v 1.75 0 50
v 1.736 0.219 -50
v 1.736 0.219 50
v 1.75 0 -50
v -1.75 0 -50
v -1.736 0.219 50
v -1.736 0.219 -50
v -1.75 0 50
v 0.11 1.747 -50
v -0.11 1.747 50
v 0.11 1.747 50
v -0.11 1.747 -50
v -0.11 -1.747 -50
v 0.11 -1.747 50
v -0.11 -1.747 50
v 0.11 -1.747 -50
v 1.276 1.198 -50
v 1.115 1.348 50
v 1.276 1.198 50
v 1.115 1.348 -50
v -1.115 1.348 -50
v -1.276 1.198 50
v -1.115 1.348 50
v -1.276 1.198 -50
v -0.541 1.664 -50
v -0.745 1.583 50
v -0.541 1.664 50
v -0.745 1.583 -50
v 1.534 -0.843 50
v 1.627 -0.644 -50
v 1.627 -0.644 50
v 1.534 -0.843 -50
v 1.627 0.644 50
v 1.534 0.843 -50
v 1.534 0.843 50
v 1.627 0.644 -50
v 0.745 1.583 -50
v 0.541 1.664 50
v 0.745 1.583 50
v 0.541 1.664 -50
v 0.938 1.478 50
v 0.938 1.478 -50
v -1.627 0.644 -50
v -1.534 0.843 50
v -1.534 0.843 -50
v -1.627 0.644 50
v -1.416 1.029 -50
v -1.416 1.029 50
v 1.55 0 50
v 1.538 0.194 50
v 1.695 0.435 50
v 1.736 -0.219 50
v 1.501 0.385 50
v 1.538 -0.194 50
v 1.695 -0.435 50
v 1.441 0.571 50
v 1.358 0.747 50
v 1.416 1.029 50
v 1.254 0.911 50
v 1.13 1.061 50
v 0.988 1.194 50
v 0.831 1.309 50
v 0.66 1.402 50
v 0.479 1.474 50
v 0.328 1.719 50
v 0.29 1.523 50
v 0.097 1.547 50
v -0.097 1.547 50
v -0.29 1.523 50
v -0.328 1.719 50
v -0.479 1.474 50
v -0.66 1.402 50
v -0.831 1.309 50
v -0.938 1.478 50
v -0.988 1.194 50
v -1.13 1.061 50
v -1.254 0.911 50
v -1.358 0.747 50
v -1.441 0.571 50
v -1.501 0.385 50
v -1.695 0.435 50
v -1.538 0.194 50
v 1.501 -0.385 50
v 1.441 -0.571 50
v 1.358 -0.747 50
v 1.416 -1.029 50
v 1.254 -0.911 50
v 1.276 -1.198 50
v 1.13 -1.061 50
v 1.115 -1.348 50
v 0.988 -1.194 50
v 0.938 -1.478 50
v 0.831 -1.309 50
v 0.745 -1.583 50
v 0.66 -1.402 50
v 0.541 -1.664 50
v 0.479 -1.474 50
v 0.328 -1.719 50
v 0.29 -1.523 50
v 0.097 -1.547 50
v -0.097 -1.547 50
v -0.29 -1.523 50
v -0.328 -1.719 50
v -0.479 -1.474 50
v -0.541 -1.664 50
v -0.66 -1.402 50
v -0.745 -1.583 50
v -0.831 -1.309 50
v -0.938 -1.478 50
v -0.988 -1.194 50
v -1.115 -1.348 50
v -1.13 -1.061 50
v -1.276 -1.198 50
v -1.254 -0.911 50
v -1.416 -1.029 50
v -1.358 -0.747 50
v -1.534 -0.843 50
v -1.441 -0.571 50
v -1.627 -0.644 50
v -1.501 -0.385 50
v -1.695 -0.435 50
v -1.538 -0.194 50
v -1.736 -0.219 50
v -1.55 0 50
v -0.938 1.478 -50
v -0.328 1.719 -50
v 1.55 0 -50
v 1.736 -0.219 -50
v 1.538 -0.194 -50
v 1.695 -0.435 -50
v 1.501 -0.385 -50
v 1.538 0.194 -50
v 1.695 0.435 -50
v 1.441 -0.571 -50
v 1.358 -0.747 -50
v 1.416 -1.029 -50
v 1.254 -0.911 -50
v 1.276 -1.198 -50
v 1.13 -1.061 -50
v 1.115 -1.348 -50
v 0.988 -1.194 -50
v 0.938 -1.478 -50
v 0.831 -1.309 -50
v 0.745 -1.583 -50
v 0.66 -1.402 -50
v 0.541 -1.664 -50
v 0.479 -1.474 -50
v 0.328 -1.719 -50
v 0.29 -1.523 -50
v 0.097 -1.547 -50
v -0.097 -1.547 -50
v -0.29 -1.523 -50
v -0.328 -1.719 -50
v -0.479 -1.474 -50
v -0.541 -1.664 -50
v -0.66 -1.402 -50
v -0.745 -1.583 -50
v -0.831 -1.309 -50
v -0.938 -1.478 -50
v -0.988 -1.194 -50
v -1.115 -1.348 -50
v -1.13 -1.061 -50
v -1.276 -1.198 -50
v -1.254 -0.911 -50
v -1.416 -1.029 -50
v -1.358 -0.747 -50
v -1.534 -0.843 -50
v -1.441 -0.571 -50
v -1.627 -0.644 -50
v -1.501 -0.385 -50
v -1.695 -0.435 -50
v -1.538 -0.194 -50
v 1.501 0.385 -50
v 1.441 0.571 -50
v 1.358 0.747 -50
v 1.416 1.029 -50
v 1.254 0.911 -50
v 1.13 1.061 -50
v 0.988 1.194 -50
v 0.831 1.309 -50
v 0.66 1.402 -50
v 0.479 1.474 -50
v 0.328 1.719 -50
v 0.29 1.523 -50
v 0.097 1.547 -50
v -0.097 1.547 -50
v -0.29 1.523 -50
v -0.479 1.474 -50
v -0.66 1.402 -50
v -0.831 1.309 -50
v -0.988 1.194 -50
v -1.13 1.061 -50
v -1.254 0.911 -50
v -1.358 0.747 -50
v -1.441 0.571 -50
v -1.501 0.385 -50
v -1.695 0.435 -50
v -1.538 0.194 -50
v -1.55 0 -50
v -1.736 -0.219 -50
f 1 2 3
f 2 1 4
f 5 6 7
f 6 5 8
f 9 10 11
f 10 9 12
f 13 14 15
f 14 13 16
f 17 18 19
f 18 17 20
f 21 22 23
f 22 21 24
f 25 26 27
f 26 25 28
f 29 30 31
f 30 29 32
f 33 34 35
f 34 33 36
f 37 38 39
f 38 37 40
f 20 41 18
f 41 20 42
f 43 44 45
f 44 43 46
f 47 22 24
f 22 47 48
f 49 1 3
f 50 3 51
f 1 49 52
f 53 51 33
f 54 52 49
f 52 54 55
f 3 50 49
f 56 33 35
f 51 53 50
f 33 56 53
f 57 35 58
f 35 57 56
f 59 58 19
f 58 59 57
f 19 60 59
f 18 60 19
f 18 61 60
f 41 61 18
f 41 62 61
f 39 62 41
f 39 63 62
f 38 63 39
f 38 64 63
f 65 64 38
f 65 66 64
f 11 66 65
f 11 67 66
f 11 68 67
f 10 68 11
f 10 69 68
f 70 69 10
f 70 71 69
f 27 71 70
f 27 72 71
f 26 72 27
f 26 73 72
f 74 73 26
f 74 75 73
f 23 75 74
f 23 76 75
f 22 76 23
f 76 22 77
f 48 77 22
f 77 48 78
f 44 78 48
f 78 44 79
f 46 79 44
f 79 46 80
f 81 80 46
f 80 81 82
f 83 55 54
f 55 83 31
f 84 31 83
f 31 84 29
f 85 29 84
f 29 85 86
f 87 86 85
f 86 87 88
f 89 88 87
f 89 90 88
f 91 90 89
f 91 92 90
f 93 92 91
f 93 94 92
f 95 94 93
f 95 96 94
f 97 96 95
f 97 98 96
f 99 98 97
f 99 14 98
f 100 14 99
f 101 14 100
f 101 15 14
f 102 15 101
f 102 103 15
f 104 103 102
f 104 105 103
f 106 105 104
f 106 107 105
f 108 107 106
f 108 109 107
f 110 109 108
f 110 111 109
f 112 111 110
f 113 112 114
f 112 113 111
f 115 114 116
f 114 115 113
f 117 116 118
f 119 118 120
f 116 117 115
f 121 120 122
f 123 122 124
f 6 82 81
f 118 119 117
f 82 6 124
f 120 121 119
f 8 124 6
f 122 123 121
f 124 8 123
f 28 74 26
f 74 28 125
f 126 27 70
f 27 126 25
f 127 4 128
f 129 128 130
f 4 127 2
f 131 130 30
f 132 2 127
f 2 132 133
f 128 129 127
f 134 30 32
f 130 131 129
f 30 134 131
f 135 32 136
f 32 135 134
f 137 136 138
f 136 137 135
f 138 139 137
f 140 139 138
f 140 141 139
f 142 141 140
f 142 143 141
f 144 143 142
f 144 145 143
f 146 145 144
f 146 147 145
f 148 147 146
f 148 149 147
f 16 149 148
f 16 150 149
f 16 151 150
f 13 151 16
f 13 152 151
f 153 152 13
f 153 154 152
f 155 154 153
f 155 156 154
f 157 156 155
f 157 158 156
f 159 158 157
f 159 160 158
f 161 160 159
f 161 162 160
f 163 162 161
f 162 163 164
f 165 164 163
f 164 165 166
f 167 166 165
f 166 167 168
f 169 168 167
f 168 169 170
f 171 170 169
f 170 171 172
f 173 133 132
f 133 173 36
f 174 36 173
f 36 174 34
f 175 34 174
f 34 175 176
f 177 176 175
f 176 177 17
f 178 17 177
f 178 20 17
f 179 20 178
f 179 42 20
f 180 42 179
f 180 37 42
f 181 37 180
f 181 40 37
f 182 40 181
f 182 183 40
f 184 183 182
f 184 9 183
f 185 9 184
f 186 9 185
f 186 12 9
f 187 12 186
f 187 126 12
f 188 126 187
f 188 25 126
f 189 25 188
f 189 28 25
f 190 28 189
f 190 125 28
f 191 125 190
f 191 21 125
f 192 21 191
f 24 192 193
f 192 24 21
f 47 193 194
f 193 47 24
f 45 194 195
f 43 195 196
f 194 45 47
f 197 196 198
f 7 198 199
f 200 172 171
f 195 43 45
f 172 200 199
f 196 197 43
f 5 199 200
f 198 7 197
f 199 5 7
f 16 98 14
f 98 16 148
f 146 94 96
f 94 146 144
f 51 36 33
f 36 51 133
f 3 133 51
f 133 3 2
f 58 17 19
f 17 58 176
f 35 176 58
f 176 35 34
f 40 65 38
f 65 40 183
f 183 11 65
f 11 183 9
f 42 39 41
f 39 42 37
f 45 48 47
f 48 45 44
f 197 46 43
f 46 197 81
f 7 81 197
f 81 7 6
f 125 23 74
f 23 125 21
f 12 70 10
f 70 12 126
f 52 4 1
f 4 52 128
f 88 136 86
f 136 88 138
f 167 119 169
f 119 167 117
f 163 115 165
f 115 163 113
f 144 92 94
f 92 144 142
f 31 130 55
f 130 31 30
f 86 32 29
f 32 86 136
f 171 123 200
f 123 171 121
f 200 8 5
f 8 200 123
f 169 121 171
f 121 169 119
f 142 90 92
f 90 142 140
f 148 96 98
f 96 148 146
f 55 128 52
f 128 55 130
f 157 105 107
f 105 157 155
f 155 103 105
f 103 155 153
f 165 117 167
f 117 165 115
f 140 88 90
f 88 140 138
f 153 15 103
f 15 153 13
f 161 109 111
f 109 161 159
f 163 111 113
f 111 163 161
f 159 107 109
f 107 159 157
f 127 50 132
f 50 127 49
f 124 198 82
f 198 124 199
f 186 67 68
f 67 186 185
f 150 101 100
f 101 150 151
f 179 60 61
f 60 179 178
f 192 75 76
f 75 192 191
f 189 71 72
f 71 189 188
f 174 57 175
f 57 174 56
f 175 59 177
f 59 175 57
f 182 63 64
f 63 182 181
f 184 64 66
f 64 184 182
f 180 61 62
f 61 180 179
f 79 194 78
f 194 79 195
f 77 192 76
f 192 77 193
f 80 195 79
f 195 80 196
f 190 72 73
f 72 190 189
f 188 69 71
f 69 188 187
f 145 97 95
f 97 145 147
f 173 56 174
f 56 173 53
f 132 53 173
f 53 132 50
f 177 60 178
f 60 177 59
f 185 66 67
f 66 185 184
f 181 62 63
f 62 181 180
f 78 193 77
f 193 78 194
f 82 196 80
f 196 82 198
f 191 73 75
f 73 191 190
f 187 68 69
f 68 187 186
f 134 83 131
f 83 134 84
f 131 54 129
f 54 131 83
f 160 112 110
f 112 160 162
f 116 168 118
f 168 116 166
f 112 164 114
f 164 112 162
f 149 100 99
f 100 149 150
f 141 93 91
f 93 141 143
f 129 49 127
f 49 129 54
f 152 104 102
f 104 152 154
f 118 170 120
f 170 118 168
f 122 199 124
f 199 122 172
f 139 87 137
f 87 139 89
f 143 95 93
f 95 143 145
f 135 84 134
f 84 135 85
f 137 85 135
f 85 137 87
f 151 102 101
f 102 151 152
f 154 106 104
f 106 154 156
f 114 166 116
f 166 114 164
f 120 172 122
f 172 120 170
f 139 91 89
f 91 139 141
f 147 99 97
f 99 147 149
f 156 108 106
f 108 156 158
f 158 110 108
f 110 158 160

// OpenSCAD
$fn = 50;


difference() {
	union() {
		translate(v = [0, 0, -50.0000000000]) {
			cylinder(h = 100, r = 1.7500000000);
		}
	}
	union() {
		translate(v = [0, 0, -100.0000000000]) {
			cylinder(h = 200, r = 1.5500000000);
		}
	}
}
